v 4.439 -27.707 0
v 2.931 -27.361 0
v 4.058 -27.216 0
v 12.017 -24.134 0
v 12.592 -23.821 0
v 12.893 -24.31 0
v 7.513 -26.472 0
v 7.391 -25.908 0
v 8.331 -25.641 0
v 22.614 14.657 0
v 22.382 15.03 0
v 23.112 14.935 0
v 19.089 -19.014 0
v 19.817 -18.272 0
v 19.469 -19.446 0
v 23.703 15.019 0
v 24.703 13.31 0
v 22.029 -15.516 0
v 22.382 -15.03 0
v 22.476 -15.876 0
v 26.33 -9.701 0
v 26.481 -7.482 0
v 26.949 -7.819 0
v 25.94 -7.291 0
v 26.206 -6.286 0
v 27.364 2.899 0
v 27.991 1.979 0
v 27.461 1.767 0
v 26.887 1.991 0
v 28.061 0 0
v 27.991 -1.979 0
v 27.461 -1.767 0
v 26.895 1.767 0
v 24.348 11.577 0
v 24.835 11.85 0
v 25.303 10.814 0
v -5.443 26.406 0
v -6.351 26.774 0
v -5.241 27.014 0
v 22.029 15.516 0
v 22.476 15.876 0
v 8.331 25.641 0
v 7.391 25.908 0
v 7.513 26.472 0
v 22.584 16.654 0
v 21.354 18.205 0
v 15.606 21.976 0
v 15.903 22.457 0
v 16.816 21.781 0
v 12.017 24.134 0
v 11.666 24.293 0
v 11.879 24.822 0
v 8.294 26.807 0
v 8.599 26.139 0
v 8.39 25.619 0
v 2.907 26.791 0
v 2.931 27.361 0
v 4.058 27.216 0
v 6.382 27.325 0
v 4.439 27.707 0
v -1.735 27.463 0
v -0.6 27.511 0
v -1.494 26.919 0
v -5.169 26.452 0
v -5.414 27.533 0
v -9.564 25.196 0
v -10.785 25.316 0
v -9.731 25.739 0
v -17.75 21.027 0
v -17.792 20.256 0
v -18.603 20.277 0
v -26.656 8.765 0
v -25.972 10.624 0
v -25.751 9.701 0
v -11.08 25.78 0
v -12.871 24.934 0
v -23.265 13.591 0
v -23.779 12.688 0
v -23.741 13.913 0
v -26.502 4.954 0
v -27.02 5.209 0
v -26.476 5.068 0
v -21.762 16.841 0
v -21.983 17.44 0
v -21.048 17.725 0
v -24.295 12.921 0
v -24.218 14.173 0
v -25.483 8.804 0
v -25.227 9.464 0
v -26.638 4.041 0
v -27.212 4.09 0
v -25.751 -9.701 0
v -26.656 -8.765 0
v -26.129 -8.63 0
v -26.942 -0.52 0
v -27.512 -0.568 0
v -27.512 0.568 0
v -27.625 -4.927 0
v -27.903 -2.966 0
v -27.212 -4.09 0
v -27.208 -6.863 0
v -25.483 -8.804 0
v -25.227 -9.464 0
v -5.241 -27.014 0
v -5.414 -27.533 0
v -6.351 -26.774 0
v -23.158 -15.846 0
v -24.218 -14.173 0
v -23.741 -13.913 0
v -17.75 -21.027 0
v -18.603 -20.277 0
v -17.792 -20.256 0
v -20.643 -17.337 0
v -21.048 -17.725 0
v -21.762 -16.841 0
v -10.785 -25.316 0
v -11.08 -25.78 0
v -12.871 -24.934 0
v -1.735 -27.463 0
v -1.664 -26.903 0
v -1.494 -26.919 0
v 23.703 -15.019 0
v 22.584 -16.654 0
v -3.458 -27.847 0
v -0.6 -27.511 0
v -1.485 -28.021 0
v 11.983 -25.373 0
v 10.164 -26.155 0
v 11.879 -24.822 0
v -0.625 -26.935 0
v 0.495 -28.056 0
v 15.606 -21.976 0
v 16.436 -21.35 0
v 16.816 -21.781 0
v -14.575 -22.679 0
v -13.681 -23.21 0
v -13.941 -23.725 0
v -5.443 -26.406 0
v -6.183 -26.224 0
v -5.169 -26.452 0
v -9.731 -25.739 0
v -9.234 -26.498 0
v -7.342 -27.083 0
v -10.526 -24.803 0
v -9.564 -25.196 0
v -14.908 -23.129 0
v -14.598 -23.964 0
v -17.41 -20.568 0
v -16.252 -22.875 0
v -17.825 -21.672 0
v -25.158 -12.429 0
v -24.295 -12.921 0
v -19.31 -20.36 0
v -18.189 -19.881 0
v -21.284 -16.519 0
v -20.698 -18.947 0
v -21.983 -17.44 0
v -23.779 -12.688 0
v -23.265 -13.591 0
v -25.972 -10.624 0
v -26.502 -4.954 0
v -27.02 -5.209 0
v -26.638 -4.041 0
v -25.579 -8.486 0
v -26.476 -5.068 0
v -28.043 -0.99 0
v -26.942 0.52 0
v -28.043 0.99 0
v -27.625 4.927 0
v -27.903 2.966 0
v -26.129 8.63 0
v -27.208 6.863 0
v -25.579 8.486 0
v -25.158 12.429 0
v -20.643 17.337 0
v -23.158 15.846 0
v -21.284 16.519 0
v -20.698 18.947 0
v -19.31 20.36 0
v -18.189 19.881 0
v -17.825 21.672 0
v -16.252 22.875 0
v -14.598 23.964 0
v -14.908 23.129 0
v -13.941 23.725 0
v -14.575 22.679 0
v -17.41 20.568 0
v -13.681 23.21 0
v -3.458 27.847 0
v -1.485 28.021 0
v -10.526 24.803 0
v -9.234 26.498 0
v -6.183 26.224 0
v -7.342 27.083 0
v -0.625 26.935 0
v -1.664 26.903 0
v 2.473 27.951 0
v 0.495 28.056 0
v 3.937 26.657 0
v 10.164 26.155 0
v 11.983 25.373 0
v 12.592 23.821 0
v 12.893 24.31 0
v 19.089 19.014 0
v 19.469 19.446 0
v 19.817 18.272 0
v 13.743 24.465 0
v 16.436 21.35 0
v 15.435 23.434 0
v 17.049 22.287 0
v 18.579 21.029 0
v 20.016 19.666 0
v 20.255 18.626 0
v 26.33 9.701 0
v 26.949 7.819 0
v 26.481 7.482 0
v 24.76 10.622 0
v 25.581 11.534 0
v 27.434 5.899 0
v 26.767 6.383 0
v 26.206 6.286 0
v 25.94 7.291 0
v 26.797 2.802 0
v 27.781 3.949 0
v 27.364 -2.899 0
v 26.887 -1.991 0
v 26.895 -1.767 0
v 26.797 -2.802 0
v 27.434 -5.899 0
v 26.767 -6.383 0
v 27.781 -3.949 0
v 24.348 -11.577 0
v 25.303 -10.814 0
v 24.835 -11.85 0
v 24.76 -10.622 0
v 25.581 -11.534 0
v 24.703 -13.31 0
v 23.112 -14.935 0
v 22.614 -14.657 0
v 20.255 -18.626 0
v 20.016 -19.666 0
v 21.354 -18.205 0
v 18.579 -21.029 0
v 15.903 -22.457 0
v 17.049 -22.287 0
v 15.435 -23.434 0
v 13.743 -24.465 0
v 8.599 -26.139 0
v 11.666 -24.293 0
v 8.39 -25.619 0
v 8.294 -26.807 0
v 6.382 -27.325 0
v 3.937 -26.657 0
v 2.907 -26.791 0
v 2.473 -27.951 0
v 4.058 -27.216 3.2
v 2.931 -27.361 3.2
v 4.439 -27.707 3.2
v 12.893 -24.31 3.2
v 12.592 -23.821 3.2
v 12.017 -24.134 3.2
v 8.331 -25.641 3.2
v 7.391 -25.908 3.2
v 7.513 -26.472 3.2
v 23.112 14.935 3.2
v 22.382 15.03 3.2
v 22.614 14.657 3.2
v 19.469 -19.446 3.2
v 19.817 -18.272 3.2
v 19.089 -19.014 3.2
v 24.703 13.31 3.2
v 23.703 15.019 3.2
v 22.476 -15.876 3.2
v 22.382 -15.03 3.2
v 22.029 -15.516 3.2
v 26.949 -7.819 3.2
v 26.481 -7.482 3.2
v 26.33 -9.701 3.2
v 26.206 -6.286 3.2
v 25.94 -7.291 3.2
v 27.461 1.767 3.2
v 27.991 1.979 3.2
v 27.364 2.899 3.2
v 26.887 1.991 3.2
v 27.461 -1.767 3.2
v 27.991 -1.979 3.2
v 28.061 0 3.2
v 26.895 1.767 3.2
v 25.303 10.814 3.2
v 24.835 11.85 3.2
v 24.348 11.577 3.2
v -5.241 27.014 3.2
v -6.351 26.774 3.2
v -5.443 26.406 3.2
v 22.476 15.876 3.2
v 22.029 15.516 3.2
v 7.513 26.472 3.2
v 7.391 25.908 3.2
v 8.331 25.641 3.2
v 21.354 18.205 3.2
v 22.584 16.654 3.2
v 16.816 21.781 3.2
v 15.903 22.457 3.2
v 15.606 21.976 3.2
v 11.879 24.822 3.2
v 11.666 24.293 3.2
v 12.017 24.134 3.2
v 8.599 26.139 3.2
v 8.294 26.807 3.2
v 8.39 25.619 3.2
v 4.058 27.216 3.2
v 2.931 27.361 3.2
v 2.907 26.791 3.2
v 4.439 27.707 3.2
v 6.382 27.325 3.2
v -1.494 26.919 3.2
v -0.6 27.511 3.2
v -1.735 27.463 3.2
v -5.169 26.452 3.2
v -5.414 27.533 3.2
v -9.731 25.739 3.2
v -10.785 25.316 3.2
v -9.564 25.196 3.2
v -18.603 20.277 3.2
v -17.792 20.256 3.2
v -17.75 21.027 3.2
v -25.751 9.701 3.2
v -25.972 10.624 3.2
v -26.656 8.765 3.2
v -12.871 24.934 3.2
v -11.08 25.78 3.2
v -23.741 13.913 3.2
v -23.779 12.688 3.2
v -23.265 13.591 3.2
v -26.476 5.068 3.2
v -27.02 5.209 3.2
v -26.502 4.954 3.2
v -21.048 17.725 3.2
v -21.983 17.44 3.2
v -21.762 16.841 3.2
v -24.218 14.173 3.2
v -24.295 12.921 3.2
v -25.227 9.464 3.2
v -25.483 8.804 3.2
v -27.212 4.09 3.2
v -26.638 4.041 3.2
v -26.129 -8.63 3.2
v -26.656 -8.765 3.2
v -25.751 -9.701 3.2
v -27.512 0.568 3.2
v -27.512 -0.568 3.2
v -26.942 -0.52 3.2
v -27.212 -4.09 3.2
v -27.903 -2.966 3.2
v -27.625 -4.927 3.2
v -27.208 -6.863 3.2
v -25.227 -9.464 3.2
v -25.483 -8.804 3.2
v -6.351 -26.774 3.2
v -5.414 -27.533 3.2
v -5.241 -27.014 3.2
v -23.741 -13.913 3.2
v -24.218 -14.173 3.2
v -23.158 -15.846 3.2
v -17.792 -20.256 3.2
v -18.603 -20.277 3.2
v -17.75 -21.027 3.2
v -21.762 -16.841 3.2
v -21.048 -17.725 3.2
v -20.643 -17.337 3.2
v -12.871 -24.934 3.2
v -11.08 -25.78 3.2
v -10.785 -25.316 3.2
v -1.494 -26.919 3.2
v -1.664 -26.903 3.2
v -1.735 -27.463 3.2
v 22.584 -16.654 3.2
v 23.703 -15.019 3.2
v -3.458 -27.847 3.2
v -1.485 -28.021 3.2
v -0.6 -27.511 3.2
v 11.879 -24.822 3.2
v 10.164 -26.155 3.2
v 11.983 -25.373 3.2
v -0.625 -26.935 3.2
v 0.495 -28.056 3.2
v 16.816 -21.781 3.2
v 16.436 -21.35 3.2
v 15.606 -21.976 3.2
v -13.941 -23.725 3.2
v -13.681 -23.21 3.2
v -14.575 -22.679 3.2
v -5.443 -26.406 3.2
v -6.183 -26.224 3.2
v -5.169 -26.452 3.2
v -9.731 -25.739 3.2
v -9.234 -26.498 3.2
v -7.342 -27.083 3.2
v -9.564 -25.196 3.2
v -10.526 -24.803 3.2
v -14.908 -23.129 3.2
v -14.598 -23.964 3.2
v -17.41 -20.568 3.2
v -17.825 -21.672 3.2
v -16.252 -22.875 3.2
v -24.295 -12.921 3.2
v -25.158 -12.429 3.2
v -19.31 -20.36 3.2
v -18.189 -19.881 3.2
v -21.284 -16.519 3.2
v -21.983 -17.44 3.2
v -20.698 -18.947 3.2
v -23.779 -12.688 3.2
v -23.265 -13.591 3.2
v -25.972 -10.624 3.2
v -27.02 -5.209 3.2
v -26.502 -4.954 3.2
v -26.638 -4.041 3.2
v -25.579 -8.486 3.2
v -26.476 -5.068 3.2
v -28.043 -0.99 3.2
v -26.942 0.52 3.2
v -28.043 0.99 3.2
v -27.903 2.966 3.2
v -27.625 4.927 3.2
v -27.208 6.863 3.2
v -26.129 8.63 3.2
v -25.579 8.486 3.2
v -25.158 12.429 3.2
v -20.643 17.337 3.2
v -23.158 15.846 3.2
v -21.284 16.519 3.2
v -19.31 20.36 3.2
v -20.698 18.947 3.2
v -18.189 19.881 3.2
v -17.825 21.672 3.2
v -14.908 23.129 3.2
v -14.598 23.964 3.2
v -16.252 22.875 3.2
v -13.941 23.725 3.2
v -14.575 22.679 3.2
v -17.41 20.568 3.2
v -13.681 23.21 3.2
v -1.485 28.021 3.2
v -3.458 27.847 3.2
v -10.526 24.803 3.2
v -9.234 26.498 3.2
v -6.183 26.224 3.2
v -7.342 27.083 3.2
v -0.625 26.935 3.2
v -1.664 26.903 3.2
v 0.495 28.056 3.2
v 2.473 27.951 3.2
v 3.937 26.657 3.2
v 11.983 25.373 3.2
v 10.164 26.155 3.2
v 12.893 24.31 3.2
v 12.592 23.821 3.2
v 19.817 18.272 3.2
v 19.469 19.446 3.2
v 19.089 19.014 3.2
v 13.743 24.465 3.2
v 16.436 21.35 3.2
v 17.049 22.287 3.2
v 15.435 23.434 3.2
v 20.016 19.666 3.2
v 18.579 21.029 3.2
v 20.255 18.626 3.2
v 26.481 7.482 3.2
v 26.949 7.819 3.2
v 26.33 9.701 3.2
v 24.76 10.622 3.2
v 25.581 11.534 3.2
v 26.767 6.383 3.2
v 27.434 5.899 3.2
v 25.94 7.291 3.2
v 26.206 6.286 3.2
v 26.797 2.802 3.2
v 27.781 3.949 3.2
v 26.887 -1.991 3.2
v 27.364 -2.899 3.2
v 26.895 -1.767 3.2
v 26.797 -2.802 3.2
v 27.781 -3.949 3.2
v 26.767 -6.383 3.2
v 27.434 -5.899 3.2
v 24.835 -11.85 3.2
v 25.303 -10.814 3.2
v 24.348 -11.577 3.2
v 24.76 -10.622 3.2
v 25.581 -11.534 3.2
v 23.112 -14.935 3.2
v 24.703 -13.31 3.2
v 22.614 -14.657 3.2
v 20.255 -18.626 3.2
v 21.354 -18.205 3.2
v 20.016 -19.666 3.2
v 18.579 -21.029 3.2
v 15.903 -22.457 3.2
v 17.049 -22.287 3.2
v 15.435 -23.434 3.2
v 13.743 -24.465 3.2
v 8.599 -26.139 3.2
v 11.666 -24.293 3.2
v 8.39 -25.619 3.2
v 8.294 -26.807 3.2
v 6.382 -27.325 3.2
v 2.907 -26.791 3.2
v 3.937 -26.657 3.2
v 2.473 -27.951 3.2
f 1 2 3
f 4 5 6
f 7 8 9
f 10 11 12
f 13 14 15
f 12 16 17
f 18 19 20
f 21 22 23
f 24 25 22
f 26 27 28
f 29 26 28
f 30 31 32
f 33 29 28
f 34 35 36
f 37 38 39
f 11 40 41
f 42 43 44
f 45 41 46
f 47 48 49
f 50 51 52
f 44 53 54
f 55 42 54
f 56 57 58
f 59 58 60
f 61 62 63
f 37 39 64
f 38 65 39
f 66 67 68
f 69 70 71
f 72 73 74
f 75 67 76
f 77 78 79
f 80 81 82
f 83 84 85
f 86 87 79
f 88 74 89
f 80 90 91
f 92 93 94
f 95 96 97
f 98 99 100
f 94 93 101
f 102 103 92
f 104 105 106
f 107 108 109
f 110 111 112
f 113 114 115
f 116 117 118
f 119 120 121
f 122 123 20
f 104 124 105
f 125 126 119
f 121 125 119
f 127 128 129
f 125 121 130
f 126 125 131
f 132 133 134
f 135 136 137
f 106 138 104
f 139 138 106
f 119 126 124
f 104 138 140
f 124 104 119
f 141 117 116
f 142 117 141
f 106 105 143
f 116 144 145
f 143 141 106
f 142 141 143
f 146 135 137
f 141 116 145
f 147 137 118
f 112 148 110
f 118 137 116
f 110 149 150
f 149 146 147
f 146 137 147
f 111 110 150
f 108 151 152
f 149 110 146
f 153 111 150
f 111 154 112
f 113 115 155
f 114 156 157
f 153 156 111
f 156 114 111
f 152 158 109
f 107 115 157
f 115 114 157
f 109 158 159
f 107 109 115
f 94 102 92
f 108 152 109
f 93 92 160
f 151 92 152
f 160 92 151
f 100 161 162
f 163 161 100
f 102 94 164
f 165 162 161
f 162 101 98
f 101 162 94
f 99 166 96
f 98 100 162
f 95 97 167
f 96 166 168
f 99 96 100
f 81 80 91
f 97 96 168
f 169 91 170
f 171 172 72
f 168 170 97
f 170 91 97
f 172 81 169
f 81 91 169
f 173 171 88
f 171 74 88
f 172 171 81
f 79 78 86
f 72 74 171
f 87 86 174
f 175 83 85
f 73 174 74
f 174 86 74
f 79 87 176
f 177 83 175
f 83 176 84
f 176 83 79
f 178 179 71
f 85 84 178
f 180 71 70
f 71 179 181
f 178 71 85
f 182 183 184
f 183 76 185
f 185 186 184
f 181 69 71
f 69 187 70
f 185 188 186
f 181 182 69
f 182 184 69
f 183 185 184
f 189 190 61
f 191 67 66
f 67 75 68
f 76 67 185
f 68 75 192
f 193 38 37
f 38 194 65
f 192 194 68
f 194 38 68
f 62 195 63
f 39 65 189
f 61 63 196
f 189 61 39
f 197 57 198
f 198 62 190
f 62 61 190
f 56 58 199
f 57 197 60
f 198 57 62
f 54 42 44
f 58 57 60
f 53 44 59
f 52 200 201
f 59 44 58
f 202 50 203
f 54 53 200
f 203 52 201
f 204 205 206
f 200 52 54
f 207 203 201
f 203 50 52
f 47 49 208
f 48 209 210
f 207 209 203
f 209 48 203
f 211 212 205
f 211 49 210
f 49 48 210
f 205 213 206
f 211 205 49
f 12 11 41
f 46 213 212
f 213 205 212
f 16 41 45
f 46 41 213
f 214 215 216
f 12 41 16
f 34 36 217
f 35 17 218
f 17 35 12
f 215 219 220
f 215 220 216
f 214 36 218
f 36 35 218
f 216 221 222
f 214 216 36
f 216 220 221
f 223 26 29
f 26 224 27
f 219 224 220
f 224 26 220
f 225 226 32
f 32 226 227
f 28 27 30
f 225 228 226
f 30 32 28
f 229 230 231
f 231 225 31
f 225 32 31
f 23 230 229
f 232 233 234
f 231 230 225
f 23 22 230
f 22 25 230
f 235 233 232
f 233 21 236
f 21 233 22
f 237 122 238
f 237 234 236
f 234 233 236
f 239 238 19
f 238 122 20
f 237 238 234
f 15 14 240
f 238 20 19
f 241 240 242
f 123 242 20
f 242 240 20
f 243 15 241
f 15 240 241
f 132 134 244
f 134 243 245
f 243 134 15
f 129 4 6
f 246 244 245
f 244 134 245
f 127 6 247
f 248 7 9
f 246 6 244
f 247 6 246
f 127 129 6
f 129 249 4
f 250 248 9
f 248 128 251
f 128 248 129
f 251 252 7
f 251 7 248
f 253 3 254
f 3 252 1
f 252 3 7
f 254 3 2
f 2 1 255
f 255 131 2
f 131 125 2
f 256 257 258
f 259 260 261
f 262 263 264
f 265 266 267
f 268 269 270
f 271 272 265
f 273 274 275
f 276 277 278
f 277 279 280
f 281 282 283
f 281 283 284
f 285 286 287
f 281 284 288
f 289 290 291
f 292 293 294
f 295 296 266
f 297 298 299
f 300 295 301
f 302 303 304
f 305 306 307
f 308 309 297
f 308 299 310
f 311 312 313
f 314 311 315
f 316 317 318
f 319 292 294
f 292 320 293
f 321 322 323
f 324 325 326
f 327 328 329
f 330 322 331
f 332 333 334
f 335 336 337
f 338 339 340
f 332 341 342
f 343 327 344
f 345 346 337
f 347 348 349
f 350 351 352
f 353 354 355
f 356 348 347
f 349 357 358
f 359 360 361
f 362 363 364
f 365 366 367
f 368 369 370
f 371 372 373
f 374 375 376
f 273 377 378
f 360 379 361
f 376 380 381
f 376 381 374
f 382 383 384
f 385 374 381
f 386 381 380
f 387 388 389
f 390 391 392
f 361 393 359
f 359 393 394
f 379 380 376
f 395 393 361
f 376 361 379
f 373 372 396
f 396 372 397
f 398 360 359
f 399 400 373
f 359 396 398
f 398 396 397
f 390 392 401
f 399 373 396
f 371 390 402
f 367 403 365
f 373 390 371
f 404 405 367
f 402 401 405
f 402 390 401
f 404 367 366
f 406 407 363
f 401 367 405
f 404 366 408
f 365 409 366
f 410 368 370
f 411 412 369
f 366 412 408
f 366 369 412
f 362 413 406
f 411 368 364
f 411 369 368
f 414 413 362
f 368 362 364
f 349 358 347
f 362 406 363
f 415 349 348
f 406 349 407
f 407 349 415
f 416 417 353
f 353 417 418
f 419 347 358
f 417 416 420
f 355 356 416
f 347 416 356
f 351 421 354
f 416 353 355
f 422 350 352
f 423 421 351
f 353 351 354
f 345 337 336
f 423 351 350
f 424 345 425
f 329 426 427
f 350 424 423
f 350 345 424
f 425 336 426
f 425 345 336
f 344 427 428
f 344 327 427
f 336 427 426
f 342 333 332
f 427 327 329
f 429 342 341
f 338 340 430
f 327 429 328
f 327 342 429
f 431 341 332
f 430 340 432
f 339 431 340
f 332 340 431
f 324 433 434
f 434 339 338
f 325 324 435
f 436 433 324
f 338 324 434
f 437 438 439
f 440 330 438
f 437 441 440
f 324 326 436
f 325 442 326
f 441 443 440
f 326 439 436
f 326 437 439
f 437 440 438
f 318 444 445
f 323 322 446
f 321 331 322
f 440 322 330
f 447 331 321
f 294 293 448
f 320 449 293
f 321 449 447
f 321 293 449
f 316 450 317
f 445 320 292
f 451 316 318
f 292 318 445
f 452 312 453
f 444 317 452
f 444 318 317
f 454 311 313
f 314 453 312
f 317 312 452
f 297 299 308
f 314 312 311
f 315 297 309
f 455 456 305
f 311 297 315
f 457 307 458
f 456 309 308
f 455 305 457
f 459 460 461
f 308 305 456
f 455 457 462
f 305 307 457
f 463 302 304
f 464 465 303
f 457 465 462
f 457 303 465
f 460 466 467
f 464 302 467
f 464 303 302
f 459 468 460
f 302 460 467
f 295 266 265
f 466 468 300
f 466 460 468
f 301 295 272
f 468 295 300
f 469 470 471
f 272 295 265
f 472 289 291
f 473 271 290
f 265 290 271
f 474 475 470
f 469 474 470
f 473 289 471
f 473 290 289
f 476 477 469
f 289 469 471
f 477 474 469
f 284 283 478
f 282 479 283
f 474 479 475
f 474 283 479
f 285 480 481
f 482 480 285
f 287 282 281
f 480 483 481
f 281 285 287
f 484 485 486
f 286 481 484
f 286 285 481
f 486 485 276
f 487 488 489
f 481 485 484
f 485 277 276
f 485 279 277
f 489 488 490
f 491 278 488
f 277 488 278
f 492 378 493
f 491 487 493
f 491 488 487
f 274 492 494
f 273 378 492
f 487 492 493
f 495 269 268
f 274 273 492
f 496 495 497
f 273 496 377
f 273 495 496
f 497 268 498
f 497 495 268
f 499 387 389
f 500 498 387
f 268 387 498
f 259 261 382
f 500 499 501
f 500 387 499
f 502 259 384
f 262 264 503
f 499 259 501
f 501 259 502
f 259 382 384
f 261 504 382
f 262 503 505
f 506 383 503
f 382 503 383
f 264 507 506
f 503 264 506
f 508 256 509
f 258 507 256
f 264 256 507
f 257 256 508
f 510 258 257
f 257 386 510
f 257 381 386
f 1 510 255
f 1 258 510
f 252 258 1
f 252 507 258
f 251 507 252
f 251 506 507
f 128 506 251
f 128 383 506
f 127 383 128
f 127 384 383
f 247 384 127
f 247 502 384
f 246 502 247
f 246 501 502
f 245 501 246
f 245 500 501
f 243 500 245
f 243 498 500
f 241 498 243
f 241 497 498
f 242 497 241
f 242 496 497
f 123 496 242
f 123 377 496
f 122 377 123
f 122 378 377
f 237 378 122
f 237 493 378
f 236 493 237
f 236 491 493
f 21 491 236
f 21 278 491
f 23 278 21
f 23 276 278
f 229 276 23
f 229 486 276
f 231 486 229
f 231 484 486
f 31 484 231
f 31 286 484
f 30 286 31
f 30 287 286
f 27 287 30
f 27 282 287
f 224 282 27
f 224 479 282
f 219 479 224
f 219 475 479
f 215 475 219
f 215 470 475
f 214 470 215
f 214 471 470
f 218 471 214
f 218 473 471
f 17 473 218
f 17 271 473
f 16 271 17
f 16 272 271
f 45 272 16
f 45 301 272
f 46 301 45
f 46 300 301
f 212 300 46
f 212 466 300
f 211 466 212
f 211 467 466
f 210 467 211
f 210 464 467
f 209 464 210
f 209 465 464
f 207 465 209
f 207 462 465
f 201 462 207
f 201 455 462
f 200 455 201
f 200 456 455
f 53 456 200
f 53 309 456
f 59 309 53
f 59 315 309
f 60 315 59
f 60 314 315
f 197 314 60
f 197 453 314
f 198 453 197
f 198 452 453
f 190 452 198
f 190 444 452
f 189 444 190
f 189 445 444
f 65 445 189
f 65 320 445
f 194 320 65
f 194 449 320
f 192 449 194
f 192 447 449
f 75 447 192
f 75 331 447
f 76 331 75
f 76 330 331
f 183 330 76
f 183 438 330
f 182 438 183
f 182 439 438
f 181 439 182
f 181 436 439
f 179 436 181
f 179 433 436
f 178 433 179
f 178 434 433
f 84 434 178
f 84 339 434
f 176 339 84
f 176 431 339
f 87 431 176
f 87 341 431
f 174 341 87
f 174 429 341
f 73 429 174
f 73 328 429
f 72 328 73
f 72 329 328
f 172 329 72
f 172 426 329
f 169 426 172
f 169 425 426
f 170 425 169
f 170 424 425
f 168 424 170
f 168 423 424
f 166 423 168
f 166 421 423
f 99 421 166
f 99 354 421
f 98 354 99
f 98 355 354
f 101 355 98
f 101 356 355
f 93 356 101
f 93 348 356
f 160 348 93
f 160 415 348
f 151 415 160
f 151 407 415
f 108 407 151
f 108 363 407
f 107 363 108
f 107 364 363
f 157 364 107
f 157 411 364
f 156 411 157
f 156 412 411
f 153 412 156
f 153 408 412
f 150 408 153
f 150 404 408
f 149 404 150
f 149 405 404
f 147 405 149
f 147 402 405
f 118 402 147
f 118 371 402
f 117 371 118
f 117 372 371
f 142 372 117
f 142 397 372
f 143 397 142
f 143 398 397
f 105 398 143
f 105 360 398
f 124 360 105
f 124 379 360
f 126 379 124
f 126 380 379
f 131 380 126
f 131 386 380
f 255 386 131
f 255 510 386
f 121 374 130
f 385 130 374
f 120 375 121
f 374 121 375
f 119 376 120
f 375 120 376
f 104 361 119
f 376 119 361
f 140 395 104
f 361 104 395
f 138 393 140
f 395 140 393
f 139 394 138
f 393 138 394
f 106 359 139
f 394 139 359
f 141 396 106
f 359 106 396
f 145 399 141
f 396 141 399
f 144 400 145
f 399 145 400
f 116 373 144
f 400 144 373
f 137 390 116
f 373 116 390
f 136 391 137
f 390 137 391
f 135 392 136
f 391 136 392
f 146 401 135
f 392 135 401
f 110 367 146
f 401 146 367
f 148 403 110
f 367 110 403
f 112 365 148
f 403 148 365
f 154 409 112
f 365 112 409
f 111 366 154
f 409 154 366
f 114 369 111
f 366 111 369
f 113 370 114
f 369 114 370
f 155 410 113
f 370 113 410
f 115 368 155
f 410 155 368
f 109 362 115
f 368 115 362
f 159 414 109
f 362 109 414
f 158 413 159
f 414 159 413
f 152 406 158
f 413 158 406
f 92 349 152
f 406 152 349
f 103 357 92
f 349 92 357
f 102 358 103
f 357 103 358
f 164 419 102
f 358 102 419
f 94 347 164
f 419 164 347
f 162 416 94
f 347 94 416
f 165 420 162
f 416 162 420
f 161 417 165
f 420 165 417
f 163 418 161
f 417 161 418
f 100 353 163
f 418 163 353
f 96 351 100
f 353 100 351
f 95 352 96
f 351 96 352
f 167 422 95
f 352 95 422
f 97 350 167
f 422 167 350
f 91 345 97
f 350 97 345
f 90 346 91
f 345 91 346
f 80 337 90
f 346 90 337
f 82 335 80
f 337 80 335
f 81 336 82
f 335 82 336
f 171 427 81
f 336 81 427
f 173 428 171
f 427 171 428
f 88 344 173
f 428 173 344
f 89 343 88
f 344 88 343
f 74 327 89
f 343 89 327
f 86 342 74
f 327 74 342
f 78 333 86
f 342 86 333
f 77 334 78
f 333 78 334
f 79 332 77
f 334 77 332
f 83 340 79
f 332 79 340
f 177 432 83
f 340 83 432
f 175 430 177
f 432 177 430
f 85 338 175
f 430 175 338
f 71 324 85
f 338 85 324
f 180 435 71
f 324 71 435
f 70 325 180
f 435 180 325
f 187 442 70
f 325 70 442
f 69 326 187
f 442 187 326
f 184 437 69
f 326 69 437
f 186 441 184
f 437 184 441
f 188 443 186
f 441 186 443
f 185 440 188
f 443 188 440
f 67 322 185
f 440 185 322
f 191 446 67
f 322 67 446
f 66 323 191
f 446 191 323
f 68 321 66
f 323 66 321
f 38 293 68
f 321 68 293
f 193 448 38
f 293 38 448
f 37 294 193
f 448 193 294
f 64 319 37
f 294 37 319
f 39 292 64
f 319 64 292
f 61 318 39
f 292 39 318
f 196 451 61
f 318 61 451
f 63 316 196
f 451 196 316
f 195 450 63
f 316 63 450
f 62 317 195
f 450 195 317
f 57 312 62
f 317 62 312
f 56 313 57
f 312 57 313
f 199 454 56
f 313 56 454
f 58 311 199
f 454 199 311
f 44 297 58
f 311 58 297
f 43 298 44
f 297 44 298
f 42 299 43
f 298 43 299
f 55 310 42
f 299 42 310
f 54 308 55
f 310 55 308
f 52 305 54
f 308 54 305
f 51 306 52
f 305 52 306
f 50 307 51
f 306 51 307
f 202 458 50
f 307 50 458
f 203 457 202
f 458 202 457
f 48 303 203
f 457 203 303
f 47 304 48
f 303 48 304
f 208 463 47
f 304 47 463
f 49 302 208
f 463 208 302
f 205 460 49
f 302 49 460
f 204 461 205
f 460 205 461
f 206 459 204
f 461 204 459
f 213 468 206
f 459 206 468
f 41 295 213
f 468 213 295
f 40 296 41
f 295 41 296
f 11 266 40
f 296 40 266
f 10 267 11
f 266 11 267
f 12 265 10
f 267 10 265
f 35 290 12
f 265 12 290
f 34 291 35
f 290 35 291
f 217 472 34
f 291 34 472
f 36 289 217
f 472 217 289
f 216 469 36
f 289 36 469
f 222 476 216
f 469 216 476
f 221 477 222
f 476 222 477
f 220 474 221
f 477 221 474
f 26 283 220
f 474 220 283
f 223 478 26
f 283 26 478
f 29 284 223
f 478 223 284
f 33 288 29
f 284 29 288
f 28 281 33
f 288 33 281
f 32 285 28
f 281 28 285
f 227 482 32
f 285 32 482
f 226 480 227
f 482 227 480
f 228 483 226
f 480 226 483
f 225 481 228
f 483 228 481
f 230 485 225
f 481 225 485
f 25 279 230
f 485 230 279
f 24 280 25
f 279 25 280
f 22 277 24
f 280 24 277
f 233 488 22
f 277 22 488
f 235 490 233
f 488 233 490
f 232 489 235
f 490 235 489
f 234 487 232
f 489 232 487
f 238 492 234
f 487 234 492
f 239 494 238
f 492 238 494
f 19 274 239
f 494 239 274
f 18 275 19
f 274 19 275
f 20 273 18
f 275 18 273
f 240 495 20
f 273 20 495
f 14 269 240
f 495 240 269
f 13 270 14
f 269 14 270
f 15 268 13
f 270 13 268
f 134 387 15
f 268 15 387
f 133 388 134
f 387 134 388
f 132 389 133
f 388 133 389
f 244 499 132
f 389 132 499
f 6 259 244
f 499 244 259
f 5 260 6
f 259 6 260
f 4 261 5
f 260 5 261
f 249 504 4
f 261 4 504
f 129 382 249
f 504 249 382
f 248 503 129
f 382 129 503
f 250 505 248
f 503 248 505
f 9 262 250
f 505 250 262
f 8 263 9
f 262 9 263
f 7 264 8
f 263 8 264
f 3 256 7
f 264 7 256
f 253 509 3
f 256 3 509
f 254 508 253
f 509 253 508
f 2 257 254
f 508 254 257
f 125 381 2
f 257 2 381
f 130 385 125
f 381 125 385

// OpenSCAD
/*
 * Toothed drive belt with the same pitch as the
 * wheel pulley.
 */
$fa = 0.5; // Minimum fragment angle

PI = 3.141592654;

WHEEL_RADIUS = 12;
WHEEL_THICKNESS = 6;
PULLEY_THICKNESS = 4.5;
PULLEY_RADIUS = 9.0;

/*
 * How long should the band / belt be?
 * 2*pi*PULLEY_RADIUS = 56.54 
 * 2* distance between pulleys 
    wheel_holes_y = [-6, -35];
    drive_motor_y = 23;
    
    23 - (-35) = 58 (distance between wheels)
    
 * 58*2 + 56.54 = 172.54 (total length of belt)
 
 * What should the diameter be?
 * 172.54 / pi = ~ 55
 */

band_length = 172.54;
band_radius = band_length / PI / 2;

belt_height = 3.2; 

// Blob_count is also 12
// So we have 12 teeth around the circumference of pulley_radius

tooth_pitch = (PULLEY_RADIUS * 2 * PI) / 12;
gap_width = (tooth_pitch * 0.75);
tooth_depth = 0.5;

tooth_count = ceil(band_length / tooth_pitch);

module drive_belt_main() {
    linear_extrude(belt_height) {
        difference() {
            // Outer
            circle(band_radius + 0.6);
            // centre cutout
            circle(band_radius - tooth_depth);
            //Teeth cutouts.
            for (n=[0:tooth_count]) {
                rotate([0,0,(n / tooth_count) * 360])
                    translate([band_radius - tooth_depth,0,0])
                        square([tooth_depth*2, gap_width], center=true);
            }
        }
    }
}

drive_belt_main();
